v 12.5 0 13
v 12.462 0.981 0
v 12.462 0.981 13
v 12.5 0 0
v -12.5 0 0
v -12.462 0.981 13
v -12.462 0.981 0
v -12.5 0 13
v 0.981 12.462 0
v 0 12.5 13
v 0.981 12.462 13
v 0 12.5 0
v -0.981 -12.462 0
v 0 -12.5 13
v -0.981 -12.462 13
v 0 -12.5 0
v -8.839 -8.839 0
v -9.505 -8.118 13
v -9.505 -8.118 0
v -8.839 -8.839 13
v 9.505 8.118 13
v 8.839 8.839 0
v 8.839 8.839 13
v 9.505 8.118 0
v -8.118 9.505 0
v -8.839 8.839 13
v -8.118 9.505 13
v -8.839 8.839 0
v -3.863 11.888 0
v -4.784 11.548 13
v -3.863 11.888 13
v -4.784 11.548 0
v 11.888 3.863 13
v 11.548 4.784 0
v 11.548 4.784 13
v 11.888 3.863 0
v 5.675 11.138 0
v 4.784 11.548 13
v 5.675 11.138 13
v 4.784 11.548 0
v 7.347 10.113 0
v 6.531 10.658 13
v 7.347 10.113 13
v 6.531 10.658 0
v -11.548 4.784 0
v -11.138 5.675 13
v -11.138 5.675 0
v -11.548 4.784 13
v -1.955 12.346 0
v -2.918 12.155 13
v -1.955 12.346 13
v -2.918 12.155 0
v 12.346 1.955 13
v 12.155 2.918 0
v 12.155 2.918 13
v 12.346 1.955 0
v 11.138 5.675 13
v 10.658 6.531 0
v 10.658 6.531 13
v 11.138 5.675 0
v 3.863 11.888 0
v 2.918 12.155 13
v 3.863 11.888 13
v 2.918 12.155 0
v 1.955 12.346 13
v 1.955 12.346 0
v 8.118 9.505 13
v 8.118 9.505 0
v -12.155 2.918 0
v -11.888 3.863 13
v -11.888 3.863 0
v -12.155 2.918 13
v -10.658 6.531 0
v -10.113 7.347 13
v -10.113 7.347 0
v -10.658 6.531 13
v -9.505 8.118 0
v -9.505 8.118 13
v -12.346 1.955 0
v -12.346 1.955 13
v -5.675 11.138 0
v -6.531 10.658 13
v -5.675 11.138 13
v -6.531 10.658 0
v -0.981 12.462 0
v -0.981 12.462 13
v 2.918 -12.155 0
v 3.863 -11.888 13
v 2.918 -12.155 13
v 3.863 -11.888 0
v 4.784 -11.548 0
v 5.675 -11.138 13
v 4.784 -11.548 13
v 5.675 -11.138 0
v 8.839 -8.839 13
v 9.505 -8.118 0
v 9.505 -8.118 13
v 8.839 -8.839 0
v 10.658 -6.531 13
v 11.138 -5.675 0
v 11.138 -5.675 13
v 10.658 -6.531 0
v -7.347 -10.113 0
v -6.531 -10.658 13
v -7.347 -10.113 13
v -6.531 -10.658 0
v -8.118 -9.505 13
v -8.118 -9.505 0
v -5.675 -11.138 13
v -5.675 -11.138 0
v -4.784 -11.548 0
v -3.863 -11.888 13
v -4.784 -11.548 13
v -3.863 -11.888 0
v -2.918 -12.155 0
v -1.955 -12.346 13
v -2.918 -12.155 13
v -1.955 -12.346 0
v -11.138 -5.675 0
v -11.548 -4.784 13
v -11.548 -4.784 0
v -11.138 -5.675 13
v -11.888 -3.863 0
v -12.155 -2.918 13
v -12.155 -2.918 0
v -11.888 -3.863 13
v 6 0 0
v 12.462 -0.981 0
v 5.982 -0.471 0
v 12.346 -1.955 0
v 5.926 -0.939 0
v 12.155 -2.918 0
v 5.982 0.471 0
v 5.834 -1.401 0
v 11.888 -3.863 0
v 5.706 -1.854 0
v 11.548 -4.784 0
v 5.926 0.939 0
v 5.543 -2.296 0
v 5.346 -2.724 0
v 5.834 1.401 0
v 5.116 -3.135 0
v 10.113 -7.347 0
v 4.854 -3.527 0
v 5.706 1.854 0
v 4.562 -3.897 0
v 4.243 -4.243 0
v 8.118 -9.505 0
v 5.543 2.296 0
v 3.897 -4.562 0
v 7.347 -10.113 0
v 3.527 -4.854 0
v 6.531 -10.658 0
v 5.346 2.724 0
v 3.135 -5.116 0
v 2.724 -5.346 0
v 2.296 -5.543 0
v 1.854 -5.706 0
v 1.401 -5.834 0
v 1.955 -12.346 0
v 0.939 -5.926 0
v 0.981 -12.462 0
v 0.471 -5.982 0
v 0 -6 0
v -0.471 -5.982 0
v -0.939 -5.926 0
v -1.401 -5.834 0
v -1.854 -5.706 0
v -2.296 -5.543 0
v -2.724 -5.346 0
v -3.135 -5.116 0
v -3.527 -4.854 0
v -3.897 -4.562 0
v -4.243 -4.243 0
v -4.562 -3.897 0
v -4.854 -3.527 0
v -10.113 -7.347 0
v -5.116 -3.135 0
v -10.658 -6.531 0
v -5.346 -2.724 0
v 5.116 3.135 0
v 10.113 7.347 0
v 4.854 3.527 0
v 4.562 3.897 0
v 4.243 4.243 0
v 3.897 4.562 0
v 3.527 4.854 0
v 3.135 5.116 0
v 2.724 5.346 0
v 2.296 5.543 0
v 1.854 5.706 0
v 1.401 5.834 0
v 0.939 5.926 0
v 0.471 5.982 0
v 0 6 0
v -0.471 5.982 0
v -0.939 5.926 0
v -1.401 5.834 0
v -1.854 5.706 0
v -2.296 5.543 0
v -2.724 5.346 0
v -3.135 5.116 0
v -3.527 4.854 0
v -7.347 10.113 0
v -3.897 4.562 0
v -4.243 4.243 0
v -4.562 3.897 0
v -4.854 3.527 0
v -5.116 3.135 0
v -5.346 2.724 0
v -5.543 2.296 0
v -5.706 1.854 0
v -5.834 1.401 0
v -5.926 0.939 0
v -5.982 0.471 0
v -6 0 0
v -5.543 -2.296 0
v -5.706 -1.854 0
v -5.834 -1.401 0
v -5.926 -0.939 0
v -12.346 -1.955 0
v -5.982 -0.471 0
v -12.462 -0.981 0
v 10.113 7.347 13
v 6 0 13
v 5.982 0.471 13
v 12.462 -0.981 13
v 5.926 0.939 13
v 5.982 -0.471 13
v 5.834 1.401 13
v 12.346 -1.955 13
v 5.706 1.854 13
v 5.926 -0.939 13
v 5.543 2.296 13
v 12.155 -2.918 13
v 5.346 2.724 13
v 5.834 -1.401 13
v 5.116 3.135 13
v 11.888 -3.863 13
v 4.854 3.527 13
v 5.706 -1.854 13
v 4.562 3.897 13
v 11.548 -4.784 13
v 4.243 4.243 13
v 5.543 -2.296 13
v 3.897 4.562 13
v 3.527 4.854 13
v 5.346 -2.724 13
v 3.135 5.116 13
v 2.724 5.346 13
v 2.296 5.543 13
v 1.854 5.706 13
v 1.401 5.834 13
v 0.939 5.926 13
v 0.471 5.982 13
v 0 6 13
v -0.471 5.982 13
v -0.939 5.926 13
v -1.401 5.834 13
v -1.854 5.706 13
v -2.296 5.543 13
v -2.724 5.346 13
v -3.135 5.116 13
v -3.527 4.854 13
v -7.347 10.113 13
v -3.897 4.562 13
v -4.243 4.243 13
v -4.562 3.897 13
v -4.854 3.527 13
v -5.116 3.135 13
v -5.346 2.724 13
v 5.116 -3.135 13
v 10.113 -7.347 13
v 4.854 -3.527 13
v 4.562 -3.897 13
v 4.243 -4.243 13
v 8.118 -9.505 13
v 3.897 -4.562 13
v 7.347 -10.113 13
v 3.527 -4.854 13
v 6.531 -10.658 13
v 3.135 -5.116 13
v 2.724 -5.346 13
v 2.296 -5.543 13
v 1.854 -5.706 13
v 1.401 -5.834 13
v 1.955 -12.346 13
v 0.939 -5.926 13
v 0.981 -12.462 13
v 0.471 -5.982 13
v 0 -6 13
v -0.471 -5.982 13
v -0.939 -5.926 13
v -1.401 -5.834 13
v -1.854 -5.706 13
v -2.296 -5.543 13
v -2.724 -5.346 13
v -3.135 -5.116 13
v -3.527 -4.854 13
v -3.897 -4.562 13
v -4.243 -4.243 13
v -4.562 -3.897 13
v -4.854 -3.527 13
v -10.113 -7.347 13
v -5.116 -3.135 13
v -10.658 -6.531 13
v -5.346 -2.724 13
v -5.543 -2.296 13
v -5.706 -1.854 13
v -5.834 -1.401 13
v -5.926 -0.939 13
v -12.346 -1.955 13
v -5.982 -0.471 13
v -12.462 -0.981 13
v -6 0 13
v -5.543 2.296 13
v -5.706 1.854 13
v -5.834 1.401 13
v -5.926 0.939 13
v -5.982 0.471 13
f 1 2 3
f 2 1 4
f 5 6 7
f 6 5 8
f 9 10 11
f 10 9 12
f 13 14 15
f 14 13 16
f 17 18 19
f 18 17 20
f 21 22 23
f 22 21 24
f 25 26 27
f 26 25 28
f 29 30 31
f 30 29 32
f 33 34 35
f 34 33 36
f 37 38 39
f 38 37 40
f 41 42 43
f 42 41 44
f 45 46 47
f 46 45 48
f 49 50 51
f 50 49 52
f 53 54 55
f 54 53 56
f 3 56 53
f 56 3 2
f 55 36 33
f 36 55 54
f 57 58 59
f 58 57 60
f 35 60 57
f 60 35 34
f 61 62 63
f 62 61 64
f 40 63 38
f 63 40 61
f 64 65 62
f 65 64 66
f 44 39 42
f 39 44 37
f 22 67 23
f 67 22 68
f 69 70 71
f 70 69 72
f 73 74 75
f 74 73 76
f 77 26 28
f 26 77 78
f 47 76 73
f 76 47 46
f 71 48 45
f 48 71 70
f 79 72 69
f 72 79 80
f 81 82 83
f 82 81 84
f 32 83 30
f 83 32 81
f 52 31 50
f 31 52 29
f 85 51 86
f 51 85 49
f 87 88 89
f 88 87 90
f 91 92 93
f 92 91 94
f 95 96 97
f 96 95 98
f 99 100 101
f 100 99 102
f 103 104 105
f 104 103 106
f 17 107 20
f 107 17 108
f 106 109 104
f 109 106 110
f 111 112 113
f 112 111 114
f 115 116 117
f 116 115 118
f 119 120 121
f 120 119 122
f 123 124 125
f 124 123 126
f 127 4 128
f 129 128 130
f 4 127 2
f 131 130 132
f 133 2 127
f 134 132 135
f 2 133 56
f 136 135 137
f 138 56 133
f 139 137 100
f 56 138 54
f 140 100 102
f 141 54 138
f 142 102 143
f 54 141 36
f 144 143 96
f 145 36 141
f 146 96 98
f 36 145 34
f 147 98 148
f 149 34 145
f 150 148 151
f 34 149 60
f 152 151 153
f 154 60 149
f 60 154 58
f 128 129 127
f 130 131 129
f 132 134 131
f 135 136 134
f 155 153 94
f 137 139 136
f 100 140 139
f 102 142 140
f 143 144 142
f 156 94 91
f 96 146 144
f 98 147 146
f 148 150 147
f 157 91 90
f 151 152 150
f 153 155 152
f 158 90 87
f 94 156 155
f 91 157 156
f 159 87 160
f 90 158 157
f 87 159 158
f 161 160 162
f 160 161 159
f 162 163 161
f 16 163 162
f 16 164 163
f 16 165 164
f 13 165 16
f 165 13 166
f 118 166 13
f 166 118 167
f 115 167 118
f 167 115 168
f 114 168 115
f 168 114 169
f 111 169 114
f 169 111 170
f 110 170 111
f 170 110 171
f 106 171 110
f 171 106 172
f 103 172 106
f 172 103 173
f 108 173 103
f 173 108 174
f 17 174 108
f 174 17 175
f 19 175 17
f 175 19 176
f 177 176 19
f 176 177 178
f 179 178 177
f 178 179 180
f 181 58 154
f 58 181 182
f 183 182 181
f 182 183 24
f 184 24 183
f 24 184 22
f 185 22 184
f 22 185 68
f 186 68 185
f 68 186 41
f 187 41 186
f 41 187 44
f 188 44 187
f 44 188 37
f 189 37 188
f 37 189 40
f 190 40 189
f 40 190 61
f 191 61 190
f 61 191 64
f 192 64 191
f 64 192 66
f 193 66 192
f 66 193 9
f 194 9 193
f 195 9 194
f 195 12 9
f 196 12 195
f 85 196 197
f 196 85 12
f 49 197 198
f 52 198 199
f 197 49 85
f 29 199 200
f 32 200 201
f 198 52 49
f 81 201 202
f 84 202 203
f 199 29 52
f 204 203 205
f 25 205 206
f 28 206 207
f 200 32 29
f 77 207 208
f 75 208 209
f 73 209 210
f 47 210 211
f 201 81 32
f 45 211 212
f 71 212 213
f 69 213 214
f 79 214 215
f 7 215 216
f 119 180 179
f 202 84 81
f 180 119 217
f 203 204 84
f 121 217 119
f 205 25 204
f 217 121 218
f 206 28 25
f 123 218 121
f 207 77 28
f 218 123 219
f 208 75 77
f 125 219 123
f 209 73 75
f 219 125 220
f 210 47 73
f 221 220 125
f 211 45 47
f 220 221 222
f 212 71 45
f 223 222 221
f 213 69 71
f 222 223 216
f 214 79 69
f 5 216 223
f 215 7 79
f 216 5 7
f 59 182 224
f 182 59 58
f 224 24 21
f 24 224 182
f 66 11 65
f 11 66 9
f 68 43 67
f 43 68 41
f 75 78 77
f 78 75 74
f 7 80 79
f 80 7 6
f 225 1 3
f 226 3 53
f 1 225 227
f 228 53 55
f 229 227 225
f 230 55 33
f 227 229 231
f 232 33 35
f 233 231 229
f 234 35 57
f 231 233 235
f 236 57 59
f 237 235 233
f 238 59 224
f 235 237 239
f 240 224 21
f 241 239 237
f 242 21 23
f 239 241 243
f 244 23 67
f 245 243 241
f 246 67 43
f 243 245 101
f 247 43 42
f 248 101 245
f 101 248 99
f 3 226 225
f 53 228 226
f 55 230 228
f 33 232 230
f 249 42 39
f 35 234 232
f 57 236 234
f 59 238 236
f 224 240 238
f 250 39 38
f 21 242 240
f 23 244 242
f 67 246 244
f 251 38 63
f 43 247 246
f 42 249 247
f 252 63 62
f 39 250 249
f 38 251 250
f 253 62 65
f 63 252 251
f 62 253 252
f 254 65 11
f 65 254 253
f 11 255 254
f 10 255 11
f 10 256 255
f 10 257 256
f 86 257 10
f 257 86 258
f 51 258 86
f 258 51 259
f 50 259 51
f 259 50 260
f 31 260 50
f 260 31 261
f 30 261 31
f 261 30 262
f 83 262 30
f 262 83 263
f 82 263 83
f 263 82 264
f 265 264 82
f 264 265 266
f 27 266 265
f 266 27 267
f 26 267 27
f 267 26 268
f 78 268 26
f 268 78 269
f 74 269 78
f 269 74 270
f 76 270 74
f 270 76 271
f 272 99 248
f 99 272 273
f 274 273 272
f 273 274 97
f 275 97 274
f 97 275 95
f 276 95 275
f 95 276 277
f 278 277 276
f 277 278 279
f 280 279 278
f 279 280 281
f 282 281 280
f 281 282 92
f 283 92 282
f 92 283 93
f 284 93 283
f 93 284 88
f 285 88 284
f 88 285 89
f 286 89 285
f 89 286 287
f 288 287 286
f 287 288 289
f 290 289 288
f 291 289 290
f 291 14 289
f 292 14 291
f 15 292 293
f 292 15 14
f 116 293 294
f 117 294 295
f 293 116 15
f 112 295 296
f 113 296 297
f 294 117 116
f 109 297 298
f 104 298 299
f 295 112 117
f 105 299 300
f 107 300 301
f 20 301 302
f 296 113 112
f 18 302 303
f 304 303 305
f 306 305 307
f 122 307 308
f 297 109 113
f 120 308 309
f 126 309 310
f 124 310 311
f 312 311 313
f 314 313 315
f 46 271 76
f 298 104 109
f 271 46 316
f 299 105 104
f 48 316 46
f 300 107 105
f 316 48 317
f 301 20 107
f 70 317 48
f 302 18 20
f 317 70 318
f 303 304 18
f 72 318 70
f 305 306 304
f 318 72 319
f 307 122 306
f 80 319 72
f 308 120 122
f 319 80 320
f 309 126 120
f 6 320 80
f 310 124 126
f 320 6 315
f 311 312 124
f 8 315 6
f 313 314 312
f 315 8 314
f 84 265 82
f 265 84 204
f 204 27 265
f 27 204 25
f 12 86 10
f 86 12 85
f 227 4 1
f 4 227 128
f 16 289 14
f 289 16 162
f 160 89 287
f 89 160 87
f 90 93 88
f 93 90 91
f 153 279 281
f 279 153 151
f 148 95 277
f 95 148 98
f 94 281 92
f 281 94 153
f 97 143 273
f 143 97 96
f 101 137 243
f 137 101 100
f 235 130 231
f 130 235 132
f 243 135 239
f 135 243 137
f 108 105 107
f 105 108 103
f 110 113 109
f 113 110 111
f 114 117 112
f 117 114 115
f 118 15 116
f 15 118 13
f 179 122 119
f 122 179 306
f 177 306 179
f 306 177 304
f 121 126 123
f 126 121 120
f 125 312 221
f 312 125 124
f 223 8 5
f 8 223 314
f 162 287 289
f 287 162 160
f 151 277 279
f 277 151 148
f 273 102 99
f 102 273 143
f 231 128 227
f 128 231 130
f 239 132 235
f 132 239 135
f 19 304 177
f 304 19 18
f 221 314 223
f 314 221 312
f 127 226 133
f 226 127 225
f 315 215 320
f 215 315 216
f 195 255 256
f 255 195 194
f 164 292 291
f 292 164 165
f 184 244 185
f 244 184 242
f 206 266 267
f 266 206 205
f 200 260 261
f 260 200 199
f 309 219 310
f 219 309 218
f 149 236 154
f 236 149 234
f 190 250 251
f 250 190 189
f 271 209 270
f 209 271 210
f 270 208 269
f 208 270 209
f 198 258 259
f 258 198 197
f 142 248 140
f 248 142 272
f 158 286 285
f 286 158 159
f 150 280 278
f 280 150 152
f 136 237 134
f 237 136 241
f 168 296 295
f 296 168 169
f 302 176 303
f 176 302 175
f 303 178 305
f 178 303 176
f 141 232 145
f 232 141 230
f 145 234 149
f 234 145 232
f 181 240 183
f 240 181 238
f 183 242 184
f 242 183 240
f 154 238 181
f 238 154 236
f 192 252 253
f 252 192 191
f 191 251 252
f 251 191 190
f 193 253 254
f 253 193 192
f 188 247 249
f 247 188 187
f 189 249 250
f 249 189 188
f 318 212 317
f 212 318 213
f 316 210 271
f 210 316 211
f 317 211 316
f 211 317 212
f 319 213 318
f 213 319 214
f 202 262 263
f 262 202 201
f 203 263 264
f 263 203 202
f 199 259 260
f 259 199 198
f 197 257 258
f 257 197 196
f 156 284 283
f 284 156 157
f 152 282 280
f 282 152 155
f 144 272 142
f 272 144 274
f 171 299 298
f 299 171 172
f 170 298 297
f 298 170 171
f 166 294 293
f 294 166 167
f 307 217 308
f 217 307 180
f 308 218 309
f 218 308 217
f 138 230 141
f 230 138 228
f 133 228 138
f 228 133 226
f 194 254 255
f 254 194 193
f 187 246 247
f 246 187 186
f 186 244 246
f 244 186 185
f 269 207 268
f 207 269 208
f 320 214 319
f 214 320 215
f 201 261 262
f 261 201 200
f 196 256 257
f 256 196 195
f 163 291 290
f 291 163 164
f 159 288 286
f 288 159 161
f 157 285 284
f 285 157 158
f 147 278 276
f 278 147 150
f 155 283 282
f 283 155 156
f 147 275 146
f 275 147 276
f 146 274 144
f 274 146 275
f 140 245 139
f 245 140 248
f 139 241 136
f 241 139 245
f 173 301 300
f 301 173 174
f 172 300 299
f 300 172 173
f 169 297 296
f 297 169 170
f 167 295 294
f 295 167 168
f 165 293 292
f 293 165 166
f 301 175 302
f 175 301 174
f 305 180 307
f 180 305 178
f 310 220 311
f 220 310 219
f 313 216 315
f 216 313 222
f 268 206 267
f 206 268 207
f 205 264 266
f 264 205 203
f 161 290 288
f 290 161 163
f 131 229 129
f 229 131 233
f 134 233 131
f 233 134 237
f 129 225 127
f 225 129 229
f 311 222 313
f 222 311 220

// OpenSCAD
// Use where rod needs blanks to make the full length

rodDiameter = 11; // Reel hole size 13-ish mm. SuppotHole = 12mm.
blankDiameter = 25; // Reel hole size 13-ish mm. SuppotHole = 12mm.

// How many reels this should support.
numberOfReelBlanks = 1;

// How wide the dispensing blocks are
blockWidth = 13;

// How deep the inset in the support is.
supportInset = 5;

height =  (blockWidth * numberOfReelBlanks);

echo ("height", height);




difference() {
    union() {
        cylinder(d=blankDiameter, h=height, $fn=80);
    }
    
    union() {
        cylinder(d=rodDiameter + 1, h=height, $fn=80);
    }
}
